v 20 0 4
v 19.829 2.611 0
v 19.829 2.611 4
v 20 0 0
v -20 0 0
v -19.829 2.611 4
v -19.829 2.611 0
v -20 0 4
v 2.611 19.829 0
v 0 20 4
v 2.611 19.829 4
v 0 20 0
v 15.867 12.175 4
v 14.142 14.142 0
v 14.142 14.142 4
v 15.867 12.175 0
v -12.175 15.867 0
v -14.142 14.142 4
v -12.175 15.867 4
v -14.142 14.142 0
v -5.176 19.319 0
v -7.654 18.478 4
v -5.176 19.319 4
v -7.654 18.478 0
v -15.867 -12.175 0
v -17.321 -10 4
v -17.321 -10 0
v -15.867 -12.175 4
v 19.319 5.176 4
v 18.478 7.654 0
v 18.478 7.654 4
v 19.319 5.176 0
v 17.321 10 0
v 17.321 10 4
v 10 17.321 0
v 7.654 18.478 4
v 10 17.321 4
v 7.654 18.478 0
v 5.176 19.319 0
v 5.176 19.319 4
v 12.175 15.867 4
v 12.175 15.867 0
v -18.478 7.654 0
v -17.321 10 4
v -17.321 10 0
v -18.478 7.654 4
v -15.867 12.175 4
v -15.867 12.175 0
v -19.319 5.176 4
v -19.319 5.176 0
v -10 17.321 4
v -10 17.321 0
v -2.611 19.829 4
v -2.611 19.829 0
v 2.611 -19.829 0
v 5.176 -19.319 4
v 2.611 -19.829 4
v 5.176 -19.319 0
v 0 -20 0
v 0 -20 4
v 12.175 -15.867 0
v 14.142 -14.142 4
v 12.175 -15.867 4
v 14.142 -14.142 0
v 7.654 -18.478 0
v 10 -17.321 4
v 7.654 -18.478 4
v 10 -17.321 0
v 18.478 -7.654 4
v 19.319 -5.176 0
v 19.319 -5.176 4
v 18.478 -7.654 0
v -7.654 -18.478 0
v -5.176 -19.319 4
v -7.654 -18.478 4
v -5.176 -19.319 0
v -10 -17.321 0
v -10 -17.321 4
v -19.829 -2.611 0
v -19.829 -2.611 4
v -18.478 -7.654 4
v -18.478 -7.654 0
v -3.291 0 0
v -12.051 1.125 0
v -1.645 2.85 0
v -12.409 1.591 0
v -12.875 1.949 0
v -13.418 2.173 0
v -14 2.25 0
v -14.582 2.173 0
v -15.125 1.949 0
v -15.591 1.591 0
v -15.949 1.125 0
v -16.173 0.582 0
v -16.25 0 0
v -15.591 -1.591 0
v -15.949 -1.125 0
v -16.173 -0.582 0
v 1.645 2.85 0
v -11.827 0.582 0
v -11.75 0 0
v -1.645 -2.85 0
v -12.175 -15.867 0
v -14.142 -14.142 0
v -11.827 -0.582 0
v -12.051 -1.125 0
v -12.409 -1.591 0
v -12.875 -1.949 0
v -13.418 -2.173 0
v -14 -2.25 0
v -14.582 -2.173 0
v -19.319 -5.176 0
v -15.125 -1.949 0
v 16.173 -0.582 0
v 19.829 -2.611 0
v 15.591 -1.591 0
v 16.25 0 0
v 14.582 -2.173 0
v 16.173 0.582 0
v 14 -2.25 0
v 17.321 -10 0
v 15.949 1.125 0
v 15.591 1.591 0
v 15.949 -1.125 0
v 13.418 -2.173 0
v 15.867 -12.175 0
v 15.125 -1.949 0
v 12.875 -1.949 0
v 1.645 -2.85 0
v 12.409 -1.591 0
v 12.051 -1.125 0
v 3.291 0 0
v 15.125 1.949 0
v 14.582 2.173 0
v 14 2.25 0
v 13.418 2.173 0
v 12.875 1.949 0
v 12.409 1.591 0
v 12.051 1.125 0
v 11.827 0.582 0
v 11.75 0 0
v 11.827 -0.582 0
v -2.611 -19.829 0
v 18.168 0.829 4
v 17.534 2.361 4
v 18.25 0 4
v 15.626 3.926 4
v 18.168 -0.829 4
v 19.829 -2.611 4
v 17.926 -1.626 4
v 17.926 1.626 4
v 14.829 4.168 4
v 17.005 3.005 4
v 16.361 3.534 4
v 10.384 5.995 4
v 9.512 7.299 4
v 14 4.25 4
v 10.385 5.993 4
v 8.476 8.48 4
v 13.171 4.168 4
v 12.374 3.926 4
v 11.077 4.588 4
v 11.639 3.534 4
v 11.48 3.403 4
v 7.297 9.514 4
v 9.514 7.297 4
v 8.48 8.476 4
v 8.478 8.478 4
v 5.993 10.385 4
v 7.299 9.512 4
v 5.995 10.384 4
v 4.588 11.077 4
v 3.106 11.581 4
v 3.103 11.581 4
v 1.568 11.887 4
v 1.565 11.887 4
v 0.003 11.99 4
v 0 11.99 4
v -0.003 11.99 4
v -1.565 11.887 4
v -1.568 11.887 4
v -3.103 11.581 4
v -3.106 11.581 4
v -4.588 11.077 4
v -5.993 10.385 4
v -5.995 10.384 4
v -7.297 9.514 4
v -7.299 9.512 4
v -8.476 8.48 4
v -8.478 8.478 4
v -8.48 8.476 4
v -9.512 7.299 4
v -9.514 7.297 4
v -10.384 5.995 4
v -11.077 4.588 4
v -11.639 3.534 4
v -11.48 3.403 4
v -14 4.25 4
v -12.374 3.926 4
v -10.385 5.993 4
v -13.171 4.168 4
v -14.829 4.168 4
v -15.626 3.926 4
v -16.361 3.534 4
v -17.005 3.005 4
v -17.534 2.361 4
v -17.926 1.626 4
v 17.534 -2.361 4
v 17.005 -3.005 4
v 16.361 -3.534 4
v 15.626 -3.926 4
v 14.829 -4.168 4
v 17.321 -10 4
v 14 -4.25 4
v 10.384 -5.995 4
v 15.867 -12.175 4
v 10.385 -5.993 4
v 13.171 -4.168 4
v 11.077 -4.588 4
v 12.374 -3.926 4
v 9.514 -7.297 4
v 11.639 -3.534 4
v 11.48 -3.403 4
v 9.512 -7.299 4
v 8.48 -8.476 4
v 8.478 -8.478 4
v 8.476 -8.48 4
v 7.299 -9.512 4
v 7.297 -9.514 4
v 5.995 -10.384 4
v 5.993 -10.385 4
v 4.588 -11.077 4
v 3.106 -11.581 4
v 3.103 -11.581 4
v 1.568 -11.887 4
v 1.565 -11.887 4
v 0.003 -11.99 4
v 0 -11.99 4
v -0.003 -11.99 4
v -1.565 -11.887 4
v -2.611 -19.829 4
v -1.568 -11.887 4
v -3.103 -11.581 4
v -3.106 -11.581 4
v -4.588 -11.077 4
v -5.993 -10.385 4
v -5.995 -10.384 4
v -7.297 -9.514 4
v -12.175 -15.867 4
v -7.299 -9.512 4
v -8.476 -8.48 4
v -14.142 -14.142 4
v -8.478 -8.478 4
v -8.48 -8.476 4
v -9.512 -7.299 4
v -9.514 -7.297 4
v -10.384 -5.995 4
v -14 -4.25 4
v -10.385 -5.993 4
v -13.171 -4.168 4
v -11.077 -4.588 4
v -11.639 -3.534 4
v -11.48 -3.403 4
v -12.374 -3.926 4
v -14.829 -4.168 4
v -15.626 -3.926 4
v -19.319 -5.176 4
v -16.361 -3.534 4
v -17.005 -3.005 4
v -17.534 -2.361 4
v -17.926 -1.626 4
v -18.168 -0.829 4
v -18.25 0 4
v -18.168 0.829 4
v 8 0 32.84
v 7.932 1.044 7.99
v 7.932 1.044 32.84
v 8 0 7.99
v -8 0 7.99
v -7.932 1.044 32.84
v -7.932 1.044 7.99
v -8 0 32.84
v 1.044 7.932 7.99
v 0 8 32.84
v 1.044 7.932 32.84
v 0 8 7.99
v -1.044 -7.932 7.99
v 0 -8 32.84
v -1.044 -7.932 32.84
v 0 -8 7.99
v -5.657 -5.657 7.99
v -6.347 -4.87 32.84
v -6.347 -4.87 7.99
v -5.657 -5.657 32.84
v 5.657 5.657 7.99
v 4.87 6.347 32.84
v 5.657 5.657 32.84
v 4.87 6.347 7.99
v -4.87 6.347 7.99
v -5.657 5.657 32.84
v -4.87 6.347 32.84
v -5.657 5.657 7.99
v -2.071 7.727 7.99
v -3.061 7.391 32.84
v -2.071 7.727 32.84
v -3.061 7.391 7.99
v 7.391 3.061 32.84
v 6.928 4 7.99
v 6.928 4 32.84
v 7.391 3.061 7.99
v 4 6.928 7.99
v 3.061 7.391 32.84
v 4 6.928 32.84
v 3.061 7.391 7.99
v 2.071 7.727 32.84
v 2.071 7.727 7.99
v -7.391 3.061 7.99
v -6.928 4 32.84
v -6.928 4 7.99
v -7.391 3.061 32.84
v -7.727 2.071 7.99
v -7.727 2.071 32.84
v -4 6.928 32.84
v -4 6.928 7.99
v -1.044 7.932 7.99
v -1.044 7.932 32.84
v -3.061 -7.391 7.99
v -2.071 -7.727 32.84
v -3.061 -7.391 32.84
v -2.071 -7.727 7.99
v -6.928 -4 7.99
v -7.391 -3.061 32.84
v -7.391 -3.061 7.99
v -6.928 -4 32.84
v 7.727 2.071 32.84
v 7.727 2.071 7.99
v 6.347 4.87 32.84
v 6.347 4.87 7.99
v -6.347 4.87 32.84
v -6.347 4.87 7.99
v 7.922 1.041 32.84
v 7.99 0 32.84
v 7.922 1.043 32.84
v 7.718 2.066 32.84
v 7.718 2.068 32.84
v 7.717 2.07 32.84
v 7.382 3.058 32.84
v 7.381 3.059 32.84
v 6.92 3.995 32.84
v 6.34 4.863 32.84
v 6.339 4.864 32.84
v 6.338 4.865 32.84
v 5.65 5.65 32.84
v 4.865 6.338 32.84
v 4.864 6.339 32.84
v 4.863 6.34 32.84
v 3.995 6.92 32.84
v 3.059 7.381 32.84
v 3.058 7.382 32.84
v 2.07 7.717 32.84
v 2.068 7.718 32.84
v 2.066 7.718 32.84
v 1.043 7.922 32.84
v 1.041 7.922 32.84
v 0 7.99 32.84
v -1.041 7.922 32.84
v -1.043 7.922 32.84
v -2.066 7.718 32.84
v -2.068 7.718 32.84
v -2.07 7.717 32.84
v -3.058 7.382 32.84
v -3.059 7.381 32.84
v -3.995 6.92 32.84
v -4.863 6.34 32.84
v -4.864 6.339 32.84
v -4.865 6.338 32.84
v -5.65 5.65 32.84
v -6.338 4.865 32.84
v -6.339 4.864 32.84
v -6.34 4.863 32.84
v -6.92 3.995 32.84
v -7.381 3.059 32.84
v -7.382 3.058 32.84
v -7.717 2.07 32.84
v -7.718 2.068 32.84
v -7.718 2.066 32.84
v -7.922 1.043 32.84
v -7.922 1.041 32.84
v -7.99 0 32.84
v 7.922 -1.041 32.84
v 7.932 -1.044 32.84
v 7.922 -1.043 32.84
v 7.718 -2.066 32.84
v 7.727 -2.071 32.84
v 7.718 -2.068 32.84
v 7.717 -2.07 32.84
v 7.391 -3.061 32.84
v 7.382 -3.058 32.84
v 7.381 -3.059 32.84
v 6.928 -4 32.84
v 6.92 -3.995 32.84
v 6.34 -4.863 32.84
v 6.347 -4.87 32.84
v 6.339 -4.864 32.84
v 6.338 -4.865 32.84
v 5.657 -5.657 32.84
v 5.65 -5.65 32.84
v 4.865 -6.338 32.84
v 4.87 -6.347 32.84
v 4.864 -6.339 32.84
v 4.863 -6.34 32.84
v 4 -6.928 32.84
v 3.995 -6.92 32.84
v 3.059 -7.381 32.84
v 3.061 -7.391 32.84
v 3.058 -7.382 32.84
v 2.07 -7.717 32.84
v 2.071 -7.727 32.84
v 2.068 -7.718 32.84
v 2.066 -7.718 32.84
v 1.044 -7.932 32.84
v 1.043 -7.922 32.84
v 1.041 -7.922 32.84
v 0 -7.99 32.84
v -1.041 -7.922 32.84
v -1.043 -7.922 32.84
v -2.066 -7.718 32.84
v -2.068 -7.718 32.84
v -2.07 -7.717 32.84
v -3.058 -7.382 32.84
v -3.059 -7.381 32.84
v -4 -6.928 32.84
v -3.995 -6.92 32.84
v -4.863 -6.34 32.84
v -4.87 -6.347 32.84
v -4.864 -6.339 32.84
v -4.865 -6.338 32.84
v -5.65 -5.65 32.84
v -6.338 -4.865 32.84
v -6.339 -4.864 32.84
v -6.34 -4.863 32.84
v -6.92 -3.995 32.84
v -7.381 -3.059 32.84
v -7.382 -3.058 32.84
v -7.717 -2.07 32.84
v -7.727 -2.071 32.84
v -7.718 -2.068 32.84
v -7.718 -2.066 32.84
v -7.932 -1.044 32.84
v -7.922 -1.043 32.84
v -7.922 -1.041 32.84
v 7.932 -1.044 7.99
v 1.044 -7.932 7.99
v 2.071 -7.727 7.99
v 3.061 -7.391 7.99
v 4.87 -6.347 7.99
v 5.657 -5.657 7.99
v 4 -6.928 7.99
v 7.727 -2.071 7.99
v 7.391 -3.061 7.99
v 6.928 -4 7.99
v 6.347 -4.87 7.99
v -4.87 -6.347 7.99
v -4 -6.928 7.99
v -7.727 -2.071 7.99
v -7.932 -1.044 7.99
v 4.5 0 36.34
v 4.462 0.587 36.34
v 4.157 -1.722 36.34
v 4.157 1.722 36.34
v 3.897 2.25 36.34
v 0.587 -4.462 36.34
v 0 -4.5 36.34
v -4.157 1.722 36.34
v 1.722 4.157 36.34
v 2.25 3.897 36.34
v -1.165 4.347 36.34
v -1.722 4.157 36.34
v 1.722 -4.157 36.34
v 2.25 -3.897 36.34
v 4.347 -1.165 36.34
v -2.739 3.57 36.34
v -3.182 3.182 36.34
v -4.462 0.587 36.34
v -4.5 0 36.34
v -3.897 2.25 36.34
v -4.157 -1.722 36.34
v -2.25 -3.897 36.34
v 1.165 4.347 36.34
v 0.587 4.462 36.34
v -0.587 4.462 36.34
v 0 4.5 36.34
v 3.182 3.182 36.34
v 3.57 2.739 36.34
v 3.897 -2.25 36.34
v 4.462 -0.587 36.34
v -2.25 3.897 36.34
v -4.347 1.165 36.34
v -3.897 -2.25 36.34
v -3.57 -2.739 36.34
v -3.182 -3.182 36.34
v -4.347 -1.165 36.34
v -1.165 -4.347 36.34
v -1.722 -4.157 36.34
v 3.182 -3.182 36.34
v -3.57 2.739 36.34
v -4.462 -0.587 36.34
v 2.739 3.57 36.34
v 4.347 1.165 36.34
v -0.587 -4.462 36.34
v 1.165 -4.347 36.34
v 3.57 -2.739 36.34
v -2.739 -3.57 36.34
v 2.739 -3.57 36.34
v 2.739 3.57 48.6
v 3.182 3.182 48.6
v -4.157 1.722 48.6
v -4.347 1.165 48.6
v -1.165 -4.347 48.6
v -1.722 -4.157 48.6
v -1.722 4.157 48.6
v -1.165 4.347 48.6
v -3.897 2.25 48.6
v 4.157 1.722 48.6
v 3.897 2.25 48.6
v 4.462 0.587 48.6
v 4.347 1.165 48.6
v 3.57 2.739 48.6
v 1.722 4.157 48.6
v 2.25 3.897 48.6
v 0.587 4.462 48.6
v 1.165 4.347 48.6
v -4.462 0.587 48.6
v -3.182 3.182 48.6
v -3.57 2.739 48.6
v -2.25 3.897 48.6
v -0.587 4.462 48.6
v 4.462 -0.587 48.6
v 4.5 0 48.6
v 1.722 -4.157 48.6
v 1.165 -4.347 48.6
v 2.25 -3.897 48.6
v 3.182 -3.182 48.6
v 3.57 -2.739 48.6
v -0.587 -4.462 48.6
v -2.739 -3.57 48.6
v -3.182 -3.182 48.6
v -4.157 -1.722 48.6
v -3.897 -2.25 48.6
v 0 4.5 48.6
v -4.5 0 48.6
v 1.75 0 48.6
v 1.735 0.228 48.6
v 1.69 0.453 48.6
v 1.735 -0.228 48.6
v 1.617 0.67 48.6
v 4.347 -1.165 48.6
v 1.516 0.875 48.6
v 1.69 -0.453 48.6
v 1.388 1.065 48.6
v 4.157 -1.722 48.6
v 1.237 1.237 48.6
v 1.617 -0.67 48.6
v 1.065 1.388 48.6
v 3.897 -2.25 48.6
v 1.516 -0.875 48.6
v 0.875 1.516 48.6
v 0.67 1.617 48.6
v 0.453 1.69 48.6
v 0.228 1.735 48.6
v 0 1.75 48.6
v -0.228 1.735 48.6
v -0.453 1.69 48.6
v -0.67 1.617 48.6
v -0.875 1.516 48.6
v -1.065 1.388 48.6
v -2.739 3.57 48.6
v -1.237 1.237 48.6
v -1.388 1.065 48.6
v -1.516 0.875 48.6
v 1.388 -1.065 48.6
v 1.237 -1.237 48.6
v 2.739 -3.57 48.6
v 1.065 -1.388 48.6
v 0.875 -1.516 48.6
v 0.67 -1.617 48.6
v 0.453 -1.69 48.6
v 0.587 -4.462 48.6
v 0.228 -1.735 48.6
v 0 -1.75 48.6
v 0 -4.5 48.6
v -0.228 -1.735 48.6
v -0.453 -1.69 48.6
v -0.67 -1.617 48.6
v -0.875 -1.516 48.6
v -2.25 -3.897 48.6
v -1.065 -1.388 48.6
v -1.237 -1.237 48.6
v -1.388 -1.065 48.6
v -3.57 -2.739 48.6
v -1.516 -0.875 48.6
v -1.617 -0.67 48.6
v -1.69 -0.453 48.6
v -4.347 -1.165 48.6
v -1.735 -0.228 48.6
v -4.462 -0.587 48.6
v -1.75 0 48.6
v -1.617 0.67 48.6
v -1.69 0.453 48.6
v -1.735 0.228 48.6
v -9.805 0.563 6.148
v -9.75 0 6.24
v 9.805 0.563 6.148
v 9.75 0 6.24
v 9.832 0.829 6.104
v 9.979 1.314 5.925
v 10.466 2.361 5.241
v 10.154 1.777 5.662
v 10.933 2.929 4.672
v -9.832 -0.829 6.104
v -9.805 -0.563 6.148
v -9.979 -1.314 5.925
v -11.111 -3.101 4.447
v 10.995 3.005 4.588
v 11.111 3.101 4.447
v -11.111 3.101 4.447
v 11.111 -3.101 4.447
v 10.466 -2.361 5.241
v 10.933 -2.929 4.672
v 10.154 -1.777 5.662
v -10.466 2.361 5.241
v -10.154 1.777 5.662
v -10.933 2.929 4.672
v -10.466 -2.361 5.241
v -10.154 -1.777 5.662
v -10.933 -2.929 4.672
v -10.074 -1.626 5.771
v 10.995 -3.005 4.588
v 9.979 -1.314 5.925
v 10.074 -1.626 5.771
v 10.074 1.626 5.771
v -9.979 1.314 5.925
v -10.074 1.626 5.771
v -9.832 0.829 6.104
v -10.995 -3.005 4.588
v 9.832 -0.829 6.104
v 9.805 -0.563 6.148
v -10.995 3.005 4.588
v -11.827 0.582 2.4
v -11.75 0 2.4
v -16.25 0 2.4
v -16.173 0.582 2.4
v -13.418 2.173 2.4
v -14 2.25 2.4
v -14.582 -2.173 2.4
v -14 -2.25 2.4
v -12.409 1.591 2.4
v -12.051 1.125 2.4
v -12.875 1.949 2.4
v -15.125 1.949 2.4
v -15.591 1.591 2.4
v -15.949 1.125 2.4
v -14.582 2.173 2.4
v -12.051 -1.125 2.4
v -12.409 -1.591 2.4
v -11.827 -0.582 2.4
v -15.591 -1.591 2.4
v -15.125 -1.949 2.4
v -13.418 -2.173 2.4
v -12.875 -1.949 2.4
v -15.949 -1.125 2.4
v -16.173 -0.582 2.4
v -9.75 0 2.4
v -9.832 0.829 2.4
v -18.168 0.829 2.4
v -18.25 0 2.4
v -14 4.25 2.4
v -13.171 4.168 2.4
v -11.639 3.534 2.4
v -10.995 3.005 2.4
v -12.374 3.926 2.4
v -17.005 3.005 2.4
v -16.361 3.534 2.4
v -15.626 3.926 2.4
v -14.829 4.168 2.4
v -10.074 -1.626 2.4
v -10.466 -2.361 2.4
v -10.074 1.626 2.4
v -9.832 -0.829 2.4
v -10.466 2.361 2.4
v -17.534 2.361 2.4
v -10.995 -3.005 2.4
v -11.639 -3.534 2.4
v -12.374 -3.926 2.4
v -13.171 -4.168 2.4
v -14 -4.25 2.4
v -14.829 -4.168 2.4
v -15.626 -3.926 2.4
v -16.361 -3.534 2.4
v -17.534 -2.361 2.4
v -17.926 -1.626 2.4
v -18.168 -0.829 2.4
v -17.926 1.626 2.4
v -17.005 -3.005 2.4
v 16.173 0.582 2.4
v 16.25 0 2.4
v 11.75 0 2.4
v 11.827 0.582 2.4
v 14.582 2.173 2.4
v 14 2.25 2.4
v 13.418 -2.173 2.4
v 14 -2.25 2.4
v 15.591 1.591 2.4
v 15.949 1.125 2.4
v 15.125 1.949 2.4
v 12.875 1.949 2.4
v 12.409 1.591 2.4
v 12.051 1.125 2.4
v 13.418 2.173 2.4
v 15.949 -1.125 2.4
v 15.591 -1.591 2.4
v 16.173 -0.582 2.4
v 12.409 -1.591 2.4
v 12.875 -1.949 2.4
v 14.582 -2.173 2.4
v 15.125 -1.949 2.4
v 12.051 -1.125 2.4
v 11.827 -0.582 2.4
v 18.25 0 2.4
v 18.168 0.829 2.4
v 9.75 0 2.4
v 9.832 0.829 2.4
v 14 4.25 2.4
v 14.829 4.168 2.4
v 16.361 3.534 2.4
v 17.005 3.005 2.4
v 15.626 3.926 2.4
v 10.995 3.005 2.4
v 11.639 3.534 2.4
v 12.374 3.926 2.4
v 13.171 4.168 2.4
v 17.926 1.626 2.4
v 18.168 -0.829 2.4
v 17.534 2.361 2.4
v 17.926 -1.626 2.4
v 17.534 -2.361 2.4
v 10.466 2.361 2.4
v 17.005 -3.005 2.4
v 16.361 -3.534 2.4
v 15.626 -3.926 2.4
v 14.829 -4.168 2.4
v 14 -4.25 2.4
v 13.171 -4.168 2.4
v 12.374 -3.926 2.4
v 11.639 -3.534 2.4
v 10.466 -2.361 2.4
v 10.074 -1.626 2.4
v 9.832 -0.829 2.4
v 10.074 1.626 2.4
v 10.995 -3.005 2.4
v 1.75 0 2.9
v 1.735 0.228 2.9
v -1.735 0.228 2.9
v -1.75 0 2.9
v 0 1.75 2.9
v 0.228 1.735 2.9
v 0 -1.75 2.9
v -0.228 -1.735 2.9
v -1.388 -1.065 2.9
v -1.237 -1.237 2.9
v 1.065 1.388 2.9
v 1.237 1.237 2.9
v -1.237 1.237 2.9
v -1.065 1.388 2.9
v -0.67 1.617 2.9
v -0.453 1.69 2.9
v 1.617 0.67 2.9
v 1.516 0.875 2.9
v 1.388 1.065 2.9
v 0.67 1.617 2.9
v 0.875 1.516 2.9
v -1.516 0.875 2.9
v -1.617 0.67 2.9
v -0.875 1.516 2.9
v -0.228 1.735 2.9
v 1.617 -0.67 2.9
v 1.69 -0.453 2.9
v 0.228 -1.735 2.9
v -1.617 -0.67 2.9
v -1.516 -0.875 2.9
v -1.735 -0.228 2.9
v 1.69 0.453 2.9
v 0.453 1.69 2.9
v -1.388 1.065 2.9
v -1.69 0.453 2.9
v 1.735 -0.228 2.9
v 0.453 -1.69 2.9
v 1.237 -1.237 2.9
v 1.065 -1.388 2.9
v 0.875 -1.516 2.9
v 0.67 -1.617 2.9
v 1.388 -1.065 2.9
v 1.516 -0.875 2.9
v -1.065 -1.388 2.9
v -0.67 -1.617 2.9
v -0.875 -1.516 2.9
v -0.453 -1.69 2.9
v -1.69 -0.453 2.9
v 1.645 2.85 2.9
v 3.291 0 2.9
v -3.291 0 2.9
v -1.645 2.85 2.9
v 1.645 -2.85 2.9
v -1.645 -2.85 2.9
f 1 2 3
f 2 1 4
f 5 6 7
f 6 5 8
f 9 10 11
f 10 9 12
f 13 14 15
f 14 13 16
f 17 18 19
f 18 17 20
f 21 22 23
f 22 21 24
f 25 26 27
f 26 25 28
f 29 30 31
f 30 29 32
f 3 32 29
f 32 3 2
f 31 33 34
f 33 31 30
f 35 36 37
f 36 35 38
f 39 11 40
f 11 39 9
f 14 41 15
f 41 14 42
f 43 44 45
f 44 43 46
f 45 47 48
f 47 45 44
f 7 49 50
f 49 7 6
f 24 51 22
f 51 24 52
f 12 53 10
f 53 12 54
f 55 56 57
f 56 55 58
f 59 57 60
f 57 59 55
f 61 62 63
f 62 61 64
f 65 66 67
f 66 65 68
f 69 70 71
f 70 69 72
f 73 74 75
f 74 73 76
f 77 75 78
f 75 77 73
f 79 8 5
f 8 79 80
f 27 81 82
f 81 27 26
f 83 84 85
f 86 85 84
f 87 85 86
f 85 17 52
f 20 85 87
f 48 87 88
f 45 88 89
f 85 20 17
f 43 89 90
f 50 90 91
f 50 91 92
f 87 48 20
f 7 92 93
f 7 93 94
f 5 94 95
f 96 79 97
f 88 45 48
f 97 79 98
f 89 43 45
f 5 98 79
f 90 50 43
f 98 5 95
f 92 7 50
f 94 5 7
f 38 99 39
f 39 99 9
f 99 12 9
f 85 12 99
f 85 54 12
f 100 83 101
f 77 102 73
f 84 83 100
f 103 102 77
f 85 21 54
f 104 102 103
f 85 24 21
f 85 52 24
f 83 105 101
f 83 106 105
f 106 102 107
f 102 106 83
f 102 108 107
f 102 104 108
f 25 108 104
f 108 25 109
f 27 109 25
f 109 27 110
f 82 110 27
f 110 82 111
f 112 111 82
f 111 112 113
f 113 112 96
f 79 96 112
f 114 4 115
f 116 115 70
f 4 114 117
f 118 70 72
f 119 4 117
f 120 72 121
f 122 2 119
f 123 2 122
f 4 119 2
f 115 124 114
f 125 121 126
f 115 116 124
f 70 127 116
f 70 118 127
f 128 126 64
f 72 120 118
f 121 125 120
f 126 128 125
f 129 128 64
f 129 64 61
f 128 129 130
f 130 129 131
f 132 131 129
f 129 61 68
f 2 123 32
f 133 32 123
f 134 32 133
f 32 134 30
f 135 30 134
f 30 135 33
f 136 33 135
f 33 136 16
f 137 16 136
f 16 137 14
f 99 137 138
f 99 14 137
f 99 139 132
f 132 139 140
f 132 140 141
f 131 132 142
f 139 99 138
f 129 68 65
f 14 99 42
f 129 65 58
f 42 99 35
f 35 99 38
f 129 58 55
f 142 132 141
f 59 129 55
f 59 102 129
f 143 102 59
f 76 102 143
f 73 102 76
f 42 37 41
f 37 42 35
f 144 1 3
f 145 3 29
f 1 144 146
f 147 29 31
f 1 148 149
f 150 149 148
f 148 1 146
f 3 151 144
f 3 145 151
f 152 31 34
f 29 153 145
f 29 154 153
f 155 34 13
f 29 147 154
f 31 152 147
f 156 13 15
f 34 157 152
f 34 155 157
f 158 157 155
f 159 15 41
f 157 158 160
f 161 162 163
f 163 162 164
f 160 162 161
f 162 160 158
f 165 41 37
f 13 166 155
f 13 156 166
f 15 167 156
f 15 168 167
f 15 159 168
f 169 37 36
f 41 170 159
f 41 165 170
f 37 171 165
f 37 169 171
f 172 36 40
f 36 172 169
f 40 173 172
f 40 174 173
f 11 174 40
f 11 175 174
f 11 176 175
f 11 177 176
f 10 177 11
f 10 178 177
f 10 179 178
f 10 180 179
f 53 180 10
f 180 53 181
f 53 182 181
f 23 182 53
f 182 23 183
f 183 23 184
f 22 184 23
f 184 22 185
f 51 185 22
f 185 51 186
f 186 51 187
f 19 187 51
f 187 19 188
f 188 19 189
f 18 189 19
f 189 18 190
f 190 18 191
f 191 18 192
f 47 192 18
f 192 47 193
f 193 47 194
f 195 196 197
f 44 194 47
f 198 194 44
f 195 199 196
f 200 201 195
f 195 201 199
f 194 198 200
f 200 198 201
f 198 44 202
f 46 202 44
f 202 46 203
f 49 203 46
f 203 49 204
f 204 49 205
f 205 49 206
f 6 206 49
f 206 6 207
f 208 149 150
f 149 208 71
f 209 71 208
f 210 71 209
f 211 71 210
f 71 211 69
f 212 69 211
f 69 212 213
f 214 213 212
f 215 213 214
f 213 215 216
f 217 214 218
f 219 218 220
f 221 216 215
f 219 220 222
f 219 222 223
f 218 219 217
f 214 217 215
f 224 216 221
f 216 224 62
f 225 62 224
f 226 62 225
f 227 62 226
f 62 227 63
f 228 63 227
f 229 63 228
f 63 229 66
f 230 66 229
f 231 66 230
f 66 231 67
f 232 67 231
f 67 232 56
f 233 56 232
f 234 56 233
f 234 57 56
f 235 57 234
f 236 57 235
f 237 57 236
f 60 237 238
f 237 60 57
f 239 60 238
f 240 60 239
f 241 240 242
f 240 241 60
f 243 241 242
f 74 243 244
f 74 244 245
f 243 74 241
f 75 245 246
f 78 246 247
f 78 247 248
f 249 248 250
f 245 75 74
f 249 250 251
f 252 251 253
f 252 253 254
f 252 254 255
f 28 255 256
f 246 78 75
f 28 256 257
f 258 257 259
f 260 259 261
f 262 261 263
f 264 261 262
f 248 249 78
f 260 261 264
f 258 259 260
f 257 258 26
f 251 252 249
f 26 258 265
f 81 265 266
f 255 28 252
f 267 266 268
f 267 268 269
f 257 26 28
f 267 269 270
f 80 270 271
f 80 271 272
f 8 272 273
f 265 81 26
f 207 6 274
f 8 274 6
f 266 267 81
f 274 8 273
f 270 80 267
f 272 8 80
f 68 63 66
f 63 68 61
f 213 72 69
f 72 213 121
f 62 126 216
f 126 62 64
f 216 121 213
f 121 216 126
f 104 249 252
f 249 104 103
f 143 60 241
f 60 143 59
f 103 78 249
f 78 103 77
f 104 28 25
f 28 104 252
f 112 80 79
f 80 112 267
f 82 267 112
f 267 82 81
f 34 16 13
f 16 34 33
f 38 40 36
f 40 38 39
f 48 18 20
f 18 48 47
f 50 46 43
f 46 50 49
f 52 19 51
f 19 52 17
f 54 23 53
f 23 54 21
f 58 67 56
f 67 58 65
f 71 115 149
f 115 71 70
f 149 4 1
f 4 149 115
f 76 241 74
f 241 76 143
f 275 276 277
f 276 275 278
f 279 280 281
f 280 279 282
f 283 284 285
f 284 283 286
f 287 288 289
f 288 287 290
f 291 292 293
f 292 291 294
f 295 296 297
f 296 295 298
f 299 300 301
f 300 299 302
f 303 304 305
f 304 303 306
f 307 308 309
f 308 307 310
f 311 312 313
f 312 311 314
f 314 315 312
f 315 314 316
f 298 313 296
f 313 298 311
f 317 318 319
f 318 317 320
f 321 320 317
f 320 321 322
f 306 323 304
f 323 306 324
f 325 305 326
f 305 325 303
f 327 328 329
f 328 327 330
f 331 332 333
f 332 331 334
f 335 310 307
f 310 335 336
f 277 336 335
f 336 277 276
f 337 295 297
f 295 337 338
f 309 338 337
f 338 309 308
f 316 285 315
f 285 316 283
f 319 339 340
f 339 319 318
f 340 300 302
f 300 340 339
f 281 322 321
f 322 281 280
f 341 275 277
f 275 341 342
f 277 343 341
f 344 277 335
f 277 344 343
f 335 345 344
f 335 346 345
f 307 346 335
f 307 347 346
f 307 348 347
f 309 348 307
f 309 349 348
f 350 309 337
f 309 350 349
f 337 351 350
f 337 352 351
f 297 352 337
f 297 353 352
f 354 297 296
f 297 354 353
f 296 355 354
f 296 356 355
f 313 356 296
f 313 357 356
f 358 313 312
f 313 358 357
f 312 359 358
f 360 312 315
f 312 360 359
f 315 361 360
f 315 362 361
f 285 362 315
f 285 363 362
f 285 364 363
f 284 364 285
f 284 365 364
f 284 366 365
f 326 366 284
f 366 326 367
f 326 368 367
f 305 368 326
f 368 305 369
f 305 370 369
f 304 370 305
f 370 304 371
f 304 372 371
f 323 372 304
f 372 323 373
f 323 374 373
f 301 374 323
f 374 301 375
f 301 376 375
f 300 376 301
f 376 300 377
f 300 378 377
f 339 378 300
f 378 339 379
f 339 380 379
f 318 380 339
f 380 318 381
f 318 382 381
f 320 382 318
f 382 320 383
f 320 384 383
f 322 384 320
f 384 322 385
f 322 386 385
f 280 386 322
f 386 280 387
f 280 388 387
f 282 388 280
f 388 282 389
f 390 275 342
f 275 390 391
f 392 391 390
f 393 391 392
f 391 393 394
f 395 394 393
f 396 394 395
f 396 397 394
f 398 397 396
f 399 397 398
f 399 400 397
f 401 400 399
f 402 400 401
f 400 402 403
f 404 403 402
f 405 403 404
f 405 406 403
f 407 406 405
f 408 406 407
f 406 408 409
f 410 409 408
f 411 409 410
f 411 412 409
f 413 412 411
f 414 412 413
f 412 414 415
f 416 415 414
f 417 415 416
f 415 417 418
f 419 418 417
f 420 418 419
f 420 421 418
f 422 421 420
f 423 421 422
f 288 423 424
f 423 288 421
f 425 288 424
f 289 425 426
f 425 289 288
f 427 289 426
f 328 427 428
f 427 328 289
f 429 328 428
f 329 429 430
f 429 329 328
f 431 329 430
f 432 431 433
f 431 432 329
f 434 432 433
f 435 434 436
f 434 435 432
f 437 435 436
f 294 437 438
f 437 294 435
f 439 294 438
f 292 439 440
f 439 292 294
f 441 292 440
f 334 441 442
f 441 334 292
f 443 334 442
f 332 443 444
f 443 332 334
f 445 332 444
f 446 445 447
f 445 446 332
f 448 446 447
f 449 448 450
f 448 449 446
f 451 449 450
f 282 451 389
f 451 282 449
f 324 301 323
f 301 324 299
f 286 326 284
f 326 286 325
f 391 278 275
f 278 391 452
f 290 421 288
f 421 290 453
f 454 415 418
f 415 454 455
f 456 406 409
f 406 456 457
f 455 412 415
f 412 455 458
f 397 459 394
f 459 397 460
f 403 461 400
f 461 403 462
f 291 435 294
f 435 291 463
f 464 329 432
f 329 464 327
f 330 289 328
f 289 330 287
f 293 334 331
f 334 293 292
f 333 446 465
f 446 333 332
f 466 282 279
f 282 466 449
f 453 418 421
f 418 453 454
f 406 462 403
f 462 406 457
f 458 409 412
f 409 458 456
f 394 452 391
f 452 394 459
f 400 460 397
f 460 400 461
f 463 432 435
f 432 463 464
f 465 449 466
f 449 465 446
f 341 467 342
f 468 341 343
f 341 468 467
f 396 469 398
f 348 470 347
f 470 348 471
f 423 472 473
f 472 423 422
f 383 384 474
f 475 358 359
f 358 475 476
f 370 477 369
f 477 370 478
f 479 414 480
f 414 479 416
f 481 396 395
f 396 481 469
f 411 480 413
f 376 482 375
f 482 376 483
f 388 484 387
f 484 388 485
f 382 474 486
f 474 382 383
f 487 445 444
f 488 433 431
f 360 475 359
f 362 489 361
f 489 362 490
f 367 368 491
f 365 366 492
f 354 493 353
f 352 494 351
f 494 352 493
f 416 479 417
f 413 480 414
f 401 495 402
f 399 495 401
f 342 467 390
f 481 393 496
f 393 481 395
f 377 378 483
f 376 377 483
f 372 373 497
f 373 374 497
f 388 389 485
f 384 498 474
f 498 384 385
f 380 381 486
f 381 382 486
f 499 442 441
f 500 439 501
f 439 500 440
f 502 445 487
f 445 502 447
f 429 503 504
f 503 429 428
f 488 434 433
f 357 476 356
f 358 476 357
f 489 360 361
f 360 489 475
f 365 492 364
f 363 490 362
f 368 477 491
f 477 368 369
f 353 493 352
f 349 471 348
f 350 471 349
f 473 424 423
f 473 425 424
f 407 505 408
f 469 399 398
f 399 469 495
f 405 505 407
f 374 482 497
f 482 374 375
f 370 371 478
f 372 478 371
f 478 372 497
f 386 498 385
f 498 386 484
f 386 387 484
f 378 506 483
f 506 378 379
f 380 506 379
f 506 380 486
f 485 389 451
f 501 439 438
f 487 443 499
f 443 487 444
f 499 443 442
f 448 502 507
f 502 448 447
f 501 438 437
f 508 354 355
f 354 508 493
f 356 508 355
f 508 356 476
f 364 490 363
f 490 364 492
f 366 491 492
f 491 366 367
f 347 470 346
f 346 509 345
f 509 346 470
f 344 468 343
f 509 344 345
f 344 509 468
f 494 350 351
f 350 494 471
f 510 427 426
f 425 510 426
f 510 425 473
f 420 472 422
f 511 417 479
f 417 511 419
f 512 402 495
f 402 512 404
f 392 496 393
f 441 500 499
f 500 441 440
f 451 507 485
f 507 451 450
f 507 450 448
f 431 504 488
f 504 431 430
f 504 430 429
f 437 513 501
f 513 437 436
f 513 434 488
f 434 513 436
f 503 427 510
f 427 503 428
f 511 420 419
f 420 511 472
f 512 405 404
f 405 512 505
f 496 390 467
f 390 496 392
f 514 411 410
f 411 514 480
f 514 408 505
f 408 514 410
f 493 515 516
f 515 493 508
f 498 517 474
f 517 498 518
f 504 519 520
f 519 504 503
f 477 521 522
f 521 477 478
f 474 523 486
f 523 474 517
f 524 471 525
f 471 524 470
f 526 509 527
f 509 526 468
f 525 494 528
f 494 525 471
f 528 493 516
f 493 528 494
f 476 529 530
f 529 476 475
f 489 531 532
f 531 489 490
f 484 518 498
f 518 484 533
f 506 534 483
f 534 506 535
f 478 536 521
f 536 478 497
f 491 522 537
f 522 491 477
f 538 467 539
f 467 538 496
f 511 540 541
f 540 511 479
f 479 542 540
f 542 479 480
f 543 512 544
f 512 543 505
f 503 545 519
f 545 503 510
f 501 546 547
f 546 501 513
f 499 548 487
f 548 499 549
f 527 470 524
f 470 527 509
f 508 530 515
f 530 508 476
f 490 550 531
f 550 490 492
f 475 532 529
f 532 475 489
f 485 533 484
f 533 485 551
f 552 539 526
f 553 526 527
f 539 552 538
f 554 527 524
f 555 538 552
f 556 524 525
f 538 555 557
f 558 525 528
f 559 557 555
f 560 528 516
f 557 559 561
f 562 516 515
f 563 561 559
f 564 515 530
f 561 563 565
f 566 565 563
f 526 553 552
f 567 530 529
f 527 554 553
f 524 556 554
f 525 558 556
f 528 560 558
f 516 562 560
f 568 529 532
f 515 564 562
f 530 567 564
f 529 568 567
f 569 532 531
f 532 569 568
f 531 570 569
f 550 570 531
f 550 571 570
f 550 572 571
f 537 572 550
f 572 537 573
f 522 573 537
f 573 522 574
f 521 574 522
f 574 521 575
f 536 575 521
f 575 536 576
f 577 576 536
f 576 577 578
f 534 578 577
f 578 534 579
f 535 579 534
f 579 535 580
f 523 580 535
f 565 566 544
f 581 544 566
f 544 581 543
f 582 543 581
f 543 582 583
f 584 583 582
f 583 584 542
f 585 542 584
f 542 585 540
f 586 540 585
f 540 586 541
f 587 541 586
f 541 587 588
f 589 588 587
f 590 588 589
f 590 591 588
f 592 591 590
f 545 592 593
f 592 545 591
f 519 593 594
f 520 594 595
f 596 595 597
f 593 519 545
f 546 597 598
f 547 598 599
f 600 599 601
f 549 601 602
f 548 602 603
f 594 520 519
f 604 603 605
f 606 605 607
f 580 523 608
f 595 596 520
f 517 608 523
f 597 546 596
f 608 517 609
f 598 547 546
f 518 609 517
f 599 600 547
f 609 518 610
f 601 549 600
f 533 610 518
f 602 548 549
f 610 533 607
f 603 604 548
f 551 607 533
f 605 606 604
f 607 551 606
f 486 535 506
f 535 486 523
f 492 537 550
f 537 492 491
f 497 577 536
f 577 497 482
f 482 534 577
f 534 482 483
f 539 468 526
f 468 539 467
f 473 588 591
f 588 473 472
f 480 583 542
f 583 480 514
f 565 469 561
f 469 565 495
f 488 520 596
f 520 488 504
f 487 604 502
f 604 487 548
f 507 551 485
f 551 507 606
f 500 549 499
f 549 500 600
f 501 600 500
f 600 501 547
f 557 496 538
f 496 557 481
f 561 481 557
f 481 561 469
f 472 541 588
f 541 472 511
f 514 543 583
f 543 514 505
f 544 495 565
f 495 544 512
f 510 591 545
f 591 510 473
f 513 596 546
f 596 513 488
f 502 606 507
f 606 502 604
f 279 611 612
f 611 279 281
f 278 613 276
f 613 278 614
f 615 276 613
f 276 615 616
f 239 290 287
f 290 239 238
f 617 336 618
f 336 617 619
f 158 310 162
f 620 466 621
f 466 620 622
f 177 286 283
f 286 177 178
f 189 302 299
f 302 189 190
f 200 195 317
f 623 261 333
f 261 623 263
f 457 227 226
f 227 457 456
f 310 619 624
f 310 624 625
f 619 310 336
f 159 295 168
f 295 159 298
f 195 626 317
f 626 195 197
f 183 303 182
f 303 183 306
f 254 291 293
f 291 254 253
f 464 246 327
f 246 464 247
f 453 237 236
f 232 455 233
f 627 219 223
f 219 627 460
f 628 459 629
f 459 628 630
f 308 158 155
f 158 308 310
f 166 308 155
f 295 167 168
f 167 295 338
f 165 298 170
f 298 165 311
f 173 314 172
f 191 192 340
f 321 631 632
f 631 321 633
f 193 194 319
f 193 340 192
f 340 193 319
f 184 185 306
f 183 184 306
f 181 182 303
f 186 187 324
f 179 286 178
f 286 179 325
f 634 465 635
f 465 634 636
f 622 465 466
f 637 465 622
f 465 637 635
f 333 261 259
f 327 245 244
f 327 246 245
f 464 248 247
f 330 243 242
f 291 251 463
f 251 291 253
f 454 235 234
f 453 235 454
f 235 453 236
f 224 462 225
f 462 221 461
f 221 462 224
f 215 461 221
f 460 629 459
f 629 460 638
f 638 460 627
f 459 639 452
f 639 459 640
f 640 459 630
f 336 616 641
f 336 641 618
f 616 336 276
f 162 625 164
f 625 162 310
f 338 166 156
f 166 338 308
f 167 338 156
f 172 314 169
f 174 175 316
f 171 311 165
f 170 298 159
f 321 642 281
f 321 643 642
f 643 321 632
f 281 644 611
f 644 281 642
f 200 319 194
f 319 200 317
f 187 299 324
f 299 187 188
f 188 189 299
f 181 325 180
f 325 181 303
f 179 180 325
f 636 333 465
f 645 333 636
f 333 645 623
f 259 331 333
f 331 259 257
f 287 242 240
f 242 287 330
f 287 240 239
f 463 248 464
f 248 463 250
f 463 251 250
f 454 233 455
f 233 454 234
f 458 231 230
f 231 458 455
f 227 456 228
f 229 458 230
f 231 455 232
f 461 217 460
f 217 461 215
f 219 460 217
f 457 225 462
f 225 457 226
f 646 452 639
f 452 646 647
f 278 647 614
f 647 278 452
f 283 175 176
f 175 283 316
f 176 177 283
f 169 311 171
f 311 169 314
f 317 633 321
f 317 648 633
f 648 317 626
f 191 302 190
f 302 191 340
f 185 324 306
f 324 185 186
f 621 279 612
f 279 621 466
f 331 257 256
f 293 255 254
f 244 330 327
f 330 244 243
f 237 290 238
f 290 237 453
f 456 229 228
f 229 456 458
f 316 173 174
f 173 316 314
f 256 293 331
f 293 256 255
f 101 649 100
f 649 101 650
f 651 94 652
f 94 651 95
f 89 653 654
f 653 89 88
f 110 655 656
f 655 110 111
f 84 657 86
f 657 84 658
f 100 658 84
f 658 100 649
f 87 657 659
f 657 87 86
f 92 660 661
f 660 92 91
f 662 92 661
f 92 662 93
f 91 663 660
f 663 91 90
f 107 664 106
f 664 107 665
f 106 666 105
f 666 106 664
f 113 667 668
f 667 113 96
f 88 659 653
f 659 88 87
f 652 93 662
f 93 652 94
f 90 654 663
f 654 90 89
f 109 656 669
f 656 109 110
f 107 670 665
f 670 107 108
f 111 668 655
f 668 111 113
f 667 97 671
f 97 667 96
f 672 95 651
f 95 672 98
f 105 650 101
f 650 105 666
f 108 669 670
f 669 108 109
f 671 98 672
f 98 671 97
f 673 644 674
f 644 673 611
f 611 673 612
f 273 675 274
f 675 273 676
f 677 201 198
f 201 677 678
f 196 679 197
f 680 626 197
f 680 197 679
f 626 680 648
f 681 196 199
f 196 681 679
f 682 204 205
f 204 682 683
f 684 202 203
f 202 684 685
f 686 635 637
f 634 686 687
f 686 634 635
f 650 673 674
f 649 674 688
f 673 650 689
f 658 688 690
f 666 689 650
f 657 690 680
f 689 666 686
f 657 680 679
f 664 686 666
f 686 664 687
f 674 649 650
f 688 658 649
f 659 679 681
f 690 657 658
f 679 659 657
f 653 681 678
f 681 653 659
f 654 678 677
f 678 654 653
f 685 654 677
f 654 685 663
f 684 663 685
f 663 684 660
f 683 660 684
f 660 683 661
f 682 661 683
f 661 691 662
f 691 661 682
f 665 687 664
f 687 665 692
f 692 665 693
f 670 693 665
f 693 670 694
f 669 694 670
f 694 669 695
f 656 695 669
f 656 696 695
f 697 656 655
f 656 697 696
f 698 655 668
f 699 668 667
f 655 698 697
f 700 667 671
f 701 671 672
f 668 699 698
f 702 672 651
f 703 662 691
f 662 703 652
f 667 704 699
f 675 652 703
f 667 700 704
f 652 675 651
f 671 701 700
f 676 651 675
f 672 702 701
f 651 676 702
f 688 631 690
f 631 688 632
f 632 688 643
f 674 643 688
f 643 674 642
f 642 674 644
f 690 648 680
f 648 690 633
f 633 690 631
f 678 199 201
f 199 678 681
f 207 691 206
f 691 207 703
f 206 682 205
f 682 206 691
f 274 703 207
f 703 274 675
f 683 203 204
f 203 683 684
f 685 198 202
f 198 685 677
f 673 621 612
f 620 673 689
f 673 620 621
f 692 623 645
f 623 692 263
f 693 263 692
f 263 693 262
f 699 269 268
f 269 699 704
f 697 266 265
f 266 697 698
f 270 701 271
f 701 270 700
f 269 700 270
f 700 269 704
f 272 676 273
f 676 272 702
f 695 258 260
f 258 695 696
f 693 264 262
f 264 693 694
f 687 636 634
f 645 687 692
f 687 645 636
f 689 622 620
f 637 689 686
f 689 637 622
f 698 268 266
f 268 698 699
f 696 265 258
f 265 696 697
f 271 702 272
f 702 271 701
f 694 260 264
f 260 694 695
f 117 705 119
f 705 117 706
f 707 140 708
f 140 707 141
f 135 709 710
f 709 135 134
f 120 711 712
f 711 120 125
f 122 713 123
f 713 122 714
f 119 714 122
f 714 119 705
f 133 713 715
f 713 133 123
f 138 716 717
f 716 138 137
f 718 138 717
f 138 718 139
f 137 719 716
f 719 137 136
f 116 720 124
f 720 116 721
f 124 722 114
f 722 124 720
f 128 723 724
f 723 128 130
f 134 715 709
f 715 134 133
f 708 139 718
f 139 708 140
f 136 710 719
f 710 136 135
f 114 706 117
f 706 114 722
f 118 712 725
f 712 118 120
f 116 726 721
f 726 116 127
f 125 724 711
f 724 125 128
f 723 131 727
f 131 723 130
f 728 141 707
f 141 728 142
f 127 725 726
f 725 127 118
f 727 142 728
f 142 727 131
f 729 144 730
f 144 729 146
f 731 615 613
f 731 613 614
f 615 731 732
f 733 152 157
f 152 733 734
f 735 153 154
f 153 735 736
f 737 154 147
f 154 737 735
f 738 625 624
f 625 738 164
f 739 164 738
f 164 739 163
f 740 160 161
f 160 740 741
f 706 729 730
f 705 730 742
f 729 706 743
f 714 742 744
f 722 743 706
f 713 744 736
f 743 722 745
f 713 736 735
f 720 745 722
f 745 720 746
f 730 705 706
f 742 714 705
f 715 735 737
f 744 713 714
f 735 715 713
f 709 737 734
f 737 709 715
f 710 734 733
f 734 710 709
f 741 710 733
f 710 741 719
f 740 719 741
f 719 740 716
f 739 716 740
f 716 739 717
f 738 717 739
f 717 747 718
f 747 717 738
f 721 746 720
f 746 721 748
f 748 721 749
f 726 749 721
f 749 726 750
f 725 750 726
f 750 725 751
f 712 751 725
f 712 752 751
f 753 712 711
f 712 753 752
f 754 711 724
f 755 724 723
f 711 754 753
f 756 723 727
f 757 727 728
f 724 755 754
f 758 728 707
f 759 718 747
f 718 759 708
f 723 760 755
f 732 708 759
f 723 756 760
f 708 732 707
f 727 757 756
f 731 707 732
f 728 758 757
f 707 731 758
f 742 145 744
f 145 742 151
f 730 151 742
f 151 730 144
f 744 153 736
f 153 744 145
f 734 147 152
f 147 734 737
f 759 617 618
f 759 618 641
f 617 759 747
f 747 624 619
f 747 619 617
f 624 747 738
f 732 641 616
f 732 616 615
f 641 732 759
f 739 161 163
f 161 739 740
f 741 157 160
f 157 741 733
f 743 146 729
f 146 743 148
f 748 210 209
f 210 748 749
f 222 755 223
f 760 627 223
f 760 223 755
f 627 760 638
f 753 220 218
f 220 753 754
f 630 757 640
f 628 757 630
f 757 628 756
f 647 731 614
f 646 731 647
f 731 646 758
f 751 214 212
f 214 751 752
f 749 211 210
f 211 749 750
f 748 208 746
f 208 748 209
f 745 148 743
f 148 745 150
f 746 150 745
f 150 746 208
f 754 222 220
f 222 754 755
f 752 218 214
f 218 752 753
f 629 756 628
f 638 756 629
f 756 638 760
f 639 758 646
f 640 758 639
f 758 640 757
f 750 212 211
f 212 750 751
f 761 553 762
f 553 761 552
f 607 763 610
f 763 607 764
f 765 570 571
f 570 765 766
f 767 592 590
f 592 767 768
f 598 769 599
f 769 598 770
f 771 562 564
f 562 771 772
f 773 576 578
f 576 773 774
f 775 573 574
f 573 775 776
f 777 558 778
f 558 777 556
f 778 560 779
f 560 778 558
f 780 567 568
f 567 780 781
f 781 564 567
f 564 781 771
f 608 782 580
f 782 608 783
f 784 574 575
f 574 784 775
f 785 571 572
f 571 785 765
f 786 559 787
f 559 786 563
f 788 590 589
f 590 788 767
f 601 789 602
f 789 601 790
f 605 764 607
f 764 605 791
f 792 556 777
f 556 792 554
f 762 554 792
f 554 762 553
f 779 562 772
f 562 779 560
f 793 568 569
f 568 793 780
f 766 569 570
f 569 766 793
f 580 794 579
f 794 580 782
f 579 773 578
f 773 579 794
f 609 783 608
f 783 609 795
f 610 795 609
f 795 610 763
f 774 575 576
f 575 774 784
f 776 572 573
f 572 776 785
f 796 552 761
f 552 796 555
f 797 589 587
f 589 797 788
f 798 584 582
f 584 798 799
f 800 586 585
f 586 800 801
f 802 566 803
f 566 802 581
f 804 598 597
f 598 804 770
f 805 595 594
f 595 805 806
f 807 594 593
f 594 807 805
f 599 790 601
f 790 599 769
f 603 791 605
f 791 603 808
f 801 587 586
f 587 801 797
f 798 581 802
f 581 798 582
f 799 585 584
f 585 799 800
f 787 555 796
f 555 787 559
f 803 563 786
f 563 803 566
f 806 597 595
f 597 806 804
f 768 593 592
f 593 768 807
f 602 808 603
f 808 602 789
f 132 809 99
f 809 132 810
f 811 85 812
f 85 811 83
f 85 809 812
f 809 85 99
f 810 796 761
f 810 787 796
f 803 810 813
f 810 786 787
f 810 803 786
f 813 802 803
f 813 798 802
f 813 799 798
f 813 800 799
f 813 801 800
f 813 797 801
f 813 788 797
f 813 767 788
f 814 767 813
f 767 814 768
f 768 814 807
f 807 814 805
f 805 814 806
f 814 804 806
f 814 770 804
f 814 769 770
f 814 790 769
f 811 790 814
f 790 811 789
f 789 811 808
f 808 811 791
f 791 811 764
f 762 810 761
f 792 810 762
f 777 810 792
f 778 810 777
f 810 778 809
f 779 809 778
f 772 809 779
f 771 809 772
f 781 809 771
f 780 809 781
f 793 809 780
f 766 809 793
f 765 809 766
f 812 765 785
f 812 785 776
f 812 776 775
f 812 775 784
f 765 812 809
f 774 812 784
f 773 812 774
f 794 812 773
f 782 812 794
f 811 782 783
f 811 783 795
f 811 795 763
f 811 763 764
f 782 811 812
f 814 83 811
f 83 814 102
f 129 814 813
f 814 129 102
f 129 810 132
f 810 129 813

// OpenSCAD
// Gen-EE — STATOR POST (2026-11-02 pedestal frame). Print x6, foot DOWN, no supports (45-degree transition).
// Board -> stator underside = post_h (printed post_h - post_shim_t + one post_shim). The top post_slim_h mm are slim (standoff_od) because the rotor-A rim spins right beside them
// (radial clearance = flange_bolt_r - standoff_od/2 - carrier_od/2); the thick part stays >= 2 mm below the rotor-A steel.
// M3 frame rod: captive M3 nut pressed into the hex pocket under the foot BEFORE screwing the post to the board.
include <parameters.scad>;
$fn = 48;
ph = post_h - post_shim_t;   // printed ONE levelling shim short: 1 post_shim on top = nominal height, 0 or 2 shims = -/+ post_shim_t
cone_h = (post_od - standoff_od) / 2;
thick_h = ph - post_slim_h - cone_h;
difference() {
    union() {
        cylinder(d=post_foot_od, h=post_foot_t);
        cylinder(d=post_od, h=thick_h);
        translate([0, 0, thick_h - 0.01]) cylinder(d1=post_od, d2=standoff_od, h=cone_h + 0.01);
        cylinder(d=standoff_od, h=ph);
        translate([0, 0, post_foot_t - 0.01]) cylinder(d1=post_od + 8, d2=post_od, h=4);
    }
    translate([0, 0, -0.1]) cylinder(d=m3_clear, h=ph + 1);
    translate([0, 0, -0.1]) cylinder(d=m3_nut_af / cos(30), h=3.0, $fn=6);
    for (s = [-1, 1]) translate([s * (post_foot_od / 2 - 6), 0, -0.1]) {
        cylinder(d=wood_screw_d, h=post_foot_t + 1, $fn=24);
        translate([0, 0, post_foot_t - 1.5]) cylinder(d=8.5, h=10, $fn=32);
    }
}
